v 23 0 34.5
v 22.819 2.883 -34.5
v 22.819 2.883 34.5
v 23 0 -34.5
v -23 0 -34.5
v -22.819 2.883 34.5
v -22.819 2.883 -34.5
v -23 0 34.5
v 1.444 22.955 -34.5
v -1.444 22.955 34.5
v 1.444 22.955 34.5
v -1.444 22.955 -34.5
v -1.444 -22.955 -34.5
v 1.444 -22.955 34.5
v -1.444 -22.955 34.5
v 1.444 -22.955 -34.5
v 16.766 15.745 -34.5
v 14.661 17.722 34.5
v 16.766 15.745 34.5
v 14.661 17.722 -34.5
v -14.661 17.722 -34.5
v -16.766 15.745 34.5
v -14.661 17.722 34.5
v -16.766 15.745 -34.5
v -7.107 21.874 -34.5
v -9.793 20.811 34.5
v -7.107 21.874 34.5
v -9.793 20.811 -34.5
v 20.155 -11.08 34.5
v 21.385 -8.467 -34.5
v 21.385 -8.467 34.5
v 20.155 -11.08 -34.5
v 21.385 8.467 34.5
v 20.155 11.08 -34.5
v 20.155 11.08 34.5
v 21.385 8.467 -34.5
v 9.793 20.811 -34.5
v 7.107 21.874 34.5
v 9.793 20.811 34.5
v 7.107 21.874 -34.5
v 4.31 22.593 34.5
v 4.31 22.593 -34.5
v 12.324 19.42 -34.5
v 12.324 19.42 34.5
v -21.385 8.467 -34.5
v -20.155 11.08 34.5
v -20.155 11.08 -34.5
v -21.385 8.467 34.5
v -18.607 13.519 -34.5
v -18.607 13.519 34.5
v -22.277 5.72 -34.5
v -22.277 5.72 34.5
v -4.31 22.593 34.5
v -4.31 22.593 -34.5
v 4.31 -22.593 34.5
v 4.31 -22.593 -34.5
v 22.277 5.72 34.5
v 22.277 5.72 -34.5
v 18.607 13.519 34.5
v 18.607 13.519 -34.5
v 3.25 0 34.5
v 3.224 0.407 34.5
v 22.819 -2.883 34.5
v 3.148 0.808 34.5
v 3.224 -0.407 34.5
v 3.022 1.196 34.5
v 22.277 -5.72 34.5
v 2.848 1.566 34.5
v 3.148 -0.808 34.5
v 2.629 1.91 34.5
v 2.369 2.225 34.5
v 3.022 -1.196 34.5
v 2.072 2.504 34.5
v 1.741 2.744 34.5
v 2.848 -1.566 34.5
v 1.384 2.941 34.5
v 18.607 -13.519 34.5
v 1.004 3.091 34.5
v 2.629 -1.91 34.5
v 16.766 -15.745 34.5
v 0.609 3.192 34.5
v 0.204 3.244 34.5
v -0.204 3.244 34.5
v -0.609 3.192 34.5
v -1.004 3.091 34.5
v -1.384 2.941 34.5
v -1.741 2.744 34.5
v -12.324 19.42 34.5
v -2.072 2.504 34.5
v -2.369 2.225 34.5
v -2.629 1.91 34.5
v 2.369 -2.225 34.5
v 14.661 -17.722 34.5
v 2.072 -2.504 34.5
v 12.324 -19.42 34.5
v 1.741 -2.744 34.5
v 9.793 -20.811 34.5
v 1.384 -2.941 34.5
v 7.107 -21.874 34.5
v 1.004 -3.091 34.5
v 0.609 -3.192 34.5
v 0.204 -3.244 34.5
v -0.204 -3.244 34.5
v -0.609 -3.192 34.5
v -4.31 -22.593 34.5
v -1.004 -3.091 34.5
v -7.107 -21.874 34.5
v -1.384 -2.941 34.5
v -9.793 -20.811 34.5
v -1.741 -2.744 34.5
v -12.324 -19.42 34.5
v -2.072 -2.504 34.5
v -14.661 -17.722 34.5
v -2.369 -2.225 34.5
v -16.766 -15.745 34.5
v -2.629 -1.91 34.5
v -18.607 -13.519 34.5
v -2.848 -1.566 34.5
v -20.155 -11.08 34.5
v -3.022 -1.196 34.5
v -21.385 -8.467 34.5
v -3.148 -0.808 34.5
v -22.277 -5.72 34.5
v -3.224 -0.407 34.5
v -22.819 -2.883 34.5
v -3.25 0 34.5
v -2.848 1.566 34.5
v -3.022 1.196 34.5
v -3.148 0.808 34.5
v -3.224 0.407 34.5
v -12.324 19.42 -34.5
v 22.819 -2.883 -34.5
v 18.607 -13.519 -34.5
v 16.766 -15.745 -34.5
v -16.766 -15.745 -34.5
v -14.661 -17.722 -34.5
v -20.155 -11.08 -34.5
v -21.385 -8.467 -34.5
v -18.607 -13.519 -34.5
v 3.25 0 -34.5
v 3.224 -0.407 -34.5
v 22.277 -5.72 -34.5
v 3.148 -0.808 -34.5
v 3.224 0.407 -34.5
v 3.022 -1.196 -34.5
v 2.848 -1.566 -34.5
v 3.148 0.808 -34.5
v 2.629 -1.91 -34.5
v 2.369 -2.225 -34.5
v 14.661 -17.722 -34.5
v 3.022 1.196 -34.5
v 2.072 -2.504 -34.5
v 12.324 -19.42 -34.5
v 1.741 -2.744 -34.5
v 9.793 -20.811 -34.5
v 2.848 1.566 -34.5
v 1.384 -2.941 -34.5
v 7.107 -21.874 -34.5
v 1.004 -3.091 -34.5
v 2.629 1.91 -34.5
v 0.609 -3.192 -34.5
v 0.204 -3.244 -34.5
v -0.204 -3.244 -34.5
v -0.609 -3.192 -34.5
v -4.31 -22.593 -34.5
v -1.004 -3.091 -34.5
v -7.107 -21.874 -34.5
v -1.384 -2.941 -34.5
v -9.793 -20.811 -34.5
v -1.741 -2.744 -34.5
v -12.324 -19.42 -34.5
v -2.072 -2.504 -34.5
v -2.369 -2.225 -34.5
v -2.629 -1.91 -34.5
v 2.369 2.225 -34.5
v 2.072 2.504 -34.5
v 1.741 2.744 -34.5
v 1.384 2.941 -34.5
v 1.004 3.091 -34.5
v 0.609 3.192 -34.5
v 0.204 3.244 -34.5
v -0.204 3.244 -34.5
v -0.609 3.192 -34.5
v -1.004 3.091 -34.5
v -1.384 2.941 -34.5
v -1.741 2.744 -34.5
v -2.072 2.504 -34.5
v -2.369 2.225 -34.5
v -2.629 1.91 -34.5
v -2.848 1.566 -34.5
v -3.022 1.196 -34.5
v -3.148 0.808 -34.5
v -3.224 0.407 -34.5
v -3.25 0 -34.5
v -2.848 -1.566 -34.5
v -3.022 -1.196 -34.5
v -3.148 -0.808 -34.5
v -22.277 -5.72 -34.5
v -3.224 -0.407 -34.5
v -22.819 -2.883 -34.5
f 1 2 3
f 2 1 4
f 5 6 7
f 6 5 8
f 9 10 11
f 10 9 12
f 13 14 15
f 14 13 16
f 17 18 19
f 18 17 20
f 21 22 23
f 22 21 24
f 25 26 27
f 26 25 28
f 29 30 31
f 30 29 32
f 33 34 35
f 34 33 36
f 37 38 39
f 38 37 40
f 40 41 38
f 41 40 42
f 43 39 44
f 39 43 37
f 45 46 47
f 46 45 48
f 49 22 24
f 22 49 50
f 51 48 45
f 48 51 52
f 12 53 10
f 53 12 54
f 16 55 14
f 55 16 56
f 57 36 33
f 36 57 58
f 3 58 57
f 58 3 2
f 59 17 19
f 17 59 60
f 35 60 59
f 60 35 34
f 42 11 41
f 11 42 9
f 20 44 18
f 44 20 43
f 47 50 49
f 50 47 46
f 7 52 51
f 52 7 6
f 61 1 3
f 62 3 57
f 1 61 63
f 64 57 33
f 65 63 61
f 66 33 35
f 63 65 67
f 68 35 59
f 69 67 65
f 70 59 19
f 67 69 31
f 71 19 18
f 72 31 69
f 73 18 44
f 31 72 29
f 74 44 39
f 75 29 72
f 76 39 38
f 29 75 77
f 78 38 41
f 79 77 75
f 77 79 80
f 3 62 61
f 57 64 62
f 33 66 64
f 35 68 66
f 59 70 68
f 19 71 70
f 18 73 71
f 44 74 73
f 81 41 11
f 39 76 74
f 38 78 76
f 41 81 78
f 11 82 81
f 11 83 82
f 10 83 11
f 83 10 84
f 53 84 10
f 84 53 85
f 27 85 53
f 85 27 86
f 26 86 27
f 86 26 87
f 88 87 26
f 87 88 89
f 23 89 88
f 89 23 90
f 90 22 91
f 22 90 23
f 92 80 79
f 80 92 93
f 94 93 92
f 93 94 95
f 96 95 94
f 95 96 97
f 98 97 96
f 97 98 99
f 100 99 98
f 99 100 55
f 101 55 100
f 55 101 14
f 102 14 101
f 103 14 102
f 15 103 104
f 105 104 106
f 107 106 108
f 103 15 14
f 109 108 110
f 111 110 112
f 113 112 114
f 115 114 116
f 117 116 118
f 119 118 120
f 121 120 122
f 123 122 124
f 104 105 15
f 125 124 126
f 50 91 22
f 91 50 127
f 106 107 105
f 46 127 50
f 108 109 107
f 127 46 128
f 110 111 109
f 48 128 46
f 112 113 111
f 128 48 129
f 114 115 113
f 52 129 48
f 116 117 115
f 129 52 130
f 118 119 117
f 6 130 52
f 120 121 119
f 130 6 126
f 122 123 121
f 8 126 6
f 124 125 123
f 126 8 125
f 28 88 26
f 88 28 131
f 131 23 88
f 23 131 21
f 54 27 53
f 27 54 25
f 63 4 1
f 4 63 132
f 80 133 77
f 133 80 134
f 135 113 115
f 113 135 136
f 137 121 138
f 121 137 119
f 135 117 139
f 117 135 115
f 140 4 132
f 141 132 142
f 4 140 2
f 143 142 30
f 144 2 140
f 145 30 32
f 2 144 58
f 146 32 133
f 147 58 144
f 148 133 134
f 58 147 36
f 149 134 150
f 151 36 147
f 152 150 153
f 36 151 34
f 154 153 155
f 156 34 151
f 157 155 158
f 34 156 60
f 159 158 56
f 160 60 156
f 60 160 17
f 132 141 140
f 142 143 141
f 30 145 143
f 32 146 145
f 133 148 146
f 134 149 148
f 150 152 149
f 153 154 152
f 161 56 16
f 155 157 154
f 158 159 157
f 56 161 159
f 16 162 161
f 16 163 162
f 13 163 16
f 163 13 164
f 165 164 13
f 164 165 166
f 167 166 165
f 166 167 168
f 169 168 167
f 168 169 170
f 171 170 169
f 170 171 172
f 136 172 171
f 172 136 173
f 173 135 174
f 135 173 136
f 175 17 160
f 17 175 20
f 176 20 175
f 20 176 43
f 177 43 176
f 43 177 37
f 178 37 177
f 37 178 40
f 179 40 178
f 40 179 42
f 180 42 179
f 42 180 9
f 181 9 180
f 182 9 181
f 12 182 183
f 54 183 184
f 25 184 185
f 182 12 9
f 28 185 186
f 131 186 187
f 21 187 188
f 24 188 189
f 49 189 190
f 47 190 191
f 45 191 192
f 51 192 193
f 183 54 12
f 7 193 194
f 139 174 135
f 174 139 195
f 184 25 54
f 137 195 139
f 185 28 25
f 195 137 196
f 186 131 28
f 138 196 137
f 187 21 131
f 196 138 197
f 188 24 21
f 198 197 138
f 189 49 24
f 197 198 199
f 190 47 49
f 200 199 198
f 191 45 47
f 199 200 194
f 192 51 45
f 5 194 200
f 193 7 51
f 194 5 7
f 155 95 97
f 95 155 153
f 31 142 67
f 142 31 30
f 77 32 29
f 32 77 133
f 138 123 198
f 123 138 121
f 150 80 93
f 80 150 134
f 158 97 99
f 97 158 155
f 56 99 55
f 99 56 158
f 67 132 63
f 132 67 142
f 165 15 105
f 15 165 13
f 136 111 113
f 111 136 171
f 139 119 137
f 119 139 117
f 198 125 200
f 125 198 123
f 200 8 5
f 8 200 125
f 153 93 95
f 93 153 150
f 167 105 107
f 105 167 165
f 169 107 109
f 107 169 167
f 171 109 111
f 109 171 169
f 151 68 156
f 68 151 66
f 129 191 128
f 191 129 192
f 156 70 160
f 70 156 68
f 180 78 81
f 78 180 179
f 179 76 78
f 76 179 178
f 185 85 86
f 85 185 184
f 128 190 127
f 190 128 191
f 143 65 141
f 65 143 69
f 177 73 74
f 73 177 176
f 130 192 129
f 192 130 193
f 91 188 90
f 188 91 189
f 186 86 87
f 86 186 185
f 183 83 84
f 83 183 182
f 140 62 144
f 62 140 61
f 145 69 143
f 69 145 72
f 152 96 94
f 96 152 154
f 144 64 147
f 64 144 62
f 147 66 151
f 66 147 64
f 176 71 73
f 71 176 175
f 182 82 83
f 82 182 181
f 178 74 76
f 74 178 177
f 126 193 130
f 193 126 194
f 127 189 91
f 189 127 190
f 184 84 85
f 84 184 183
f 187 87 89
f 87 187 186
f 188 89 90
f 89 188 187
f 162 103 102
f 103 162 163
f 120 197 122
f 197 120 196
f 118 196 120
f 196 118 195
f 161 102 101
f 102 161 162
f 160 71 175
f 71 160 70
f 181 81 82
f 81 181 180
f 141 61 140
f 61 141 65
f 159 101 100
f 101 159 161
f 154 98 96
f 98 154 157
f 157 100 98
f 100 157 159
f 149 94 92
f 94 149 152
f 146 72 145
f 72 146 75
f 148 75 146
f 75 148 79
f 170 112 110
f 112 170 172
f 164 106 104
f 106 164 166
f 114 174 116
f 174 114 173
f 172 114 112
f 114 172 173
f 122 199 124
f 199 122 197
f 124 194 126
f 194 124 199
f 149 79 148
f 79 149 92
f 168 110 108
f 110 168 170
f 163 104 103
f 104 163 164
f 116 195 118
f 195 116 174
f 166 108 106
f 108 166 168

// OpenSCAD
$fn = 50;


difference() {
	union() {
		translate(v = [0, 0, -34.5000000000]) {
			cylinder(h = 69, r = 23.0000000000);
		}
	}
	union() {
		translate(v = [0, 0, -100.0000000000]) {
			cylinder(h = 200, r = 3.2500000000);
		}
	}
}
